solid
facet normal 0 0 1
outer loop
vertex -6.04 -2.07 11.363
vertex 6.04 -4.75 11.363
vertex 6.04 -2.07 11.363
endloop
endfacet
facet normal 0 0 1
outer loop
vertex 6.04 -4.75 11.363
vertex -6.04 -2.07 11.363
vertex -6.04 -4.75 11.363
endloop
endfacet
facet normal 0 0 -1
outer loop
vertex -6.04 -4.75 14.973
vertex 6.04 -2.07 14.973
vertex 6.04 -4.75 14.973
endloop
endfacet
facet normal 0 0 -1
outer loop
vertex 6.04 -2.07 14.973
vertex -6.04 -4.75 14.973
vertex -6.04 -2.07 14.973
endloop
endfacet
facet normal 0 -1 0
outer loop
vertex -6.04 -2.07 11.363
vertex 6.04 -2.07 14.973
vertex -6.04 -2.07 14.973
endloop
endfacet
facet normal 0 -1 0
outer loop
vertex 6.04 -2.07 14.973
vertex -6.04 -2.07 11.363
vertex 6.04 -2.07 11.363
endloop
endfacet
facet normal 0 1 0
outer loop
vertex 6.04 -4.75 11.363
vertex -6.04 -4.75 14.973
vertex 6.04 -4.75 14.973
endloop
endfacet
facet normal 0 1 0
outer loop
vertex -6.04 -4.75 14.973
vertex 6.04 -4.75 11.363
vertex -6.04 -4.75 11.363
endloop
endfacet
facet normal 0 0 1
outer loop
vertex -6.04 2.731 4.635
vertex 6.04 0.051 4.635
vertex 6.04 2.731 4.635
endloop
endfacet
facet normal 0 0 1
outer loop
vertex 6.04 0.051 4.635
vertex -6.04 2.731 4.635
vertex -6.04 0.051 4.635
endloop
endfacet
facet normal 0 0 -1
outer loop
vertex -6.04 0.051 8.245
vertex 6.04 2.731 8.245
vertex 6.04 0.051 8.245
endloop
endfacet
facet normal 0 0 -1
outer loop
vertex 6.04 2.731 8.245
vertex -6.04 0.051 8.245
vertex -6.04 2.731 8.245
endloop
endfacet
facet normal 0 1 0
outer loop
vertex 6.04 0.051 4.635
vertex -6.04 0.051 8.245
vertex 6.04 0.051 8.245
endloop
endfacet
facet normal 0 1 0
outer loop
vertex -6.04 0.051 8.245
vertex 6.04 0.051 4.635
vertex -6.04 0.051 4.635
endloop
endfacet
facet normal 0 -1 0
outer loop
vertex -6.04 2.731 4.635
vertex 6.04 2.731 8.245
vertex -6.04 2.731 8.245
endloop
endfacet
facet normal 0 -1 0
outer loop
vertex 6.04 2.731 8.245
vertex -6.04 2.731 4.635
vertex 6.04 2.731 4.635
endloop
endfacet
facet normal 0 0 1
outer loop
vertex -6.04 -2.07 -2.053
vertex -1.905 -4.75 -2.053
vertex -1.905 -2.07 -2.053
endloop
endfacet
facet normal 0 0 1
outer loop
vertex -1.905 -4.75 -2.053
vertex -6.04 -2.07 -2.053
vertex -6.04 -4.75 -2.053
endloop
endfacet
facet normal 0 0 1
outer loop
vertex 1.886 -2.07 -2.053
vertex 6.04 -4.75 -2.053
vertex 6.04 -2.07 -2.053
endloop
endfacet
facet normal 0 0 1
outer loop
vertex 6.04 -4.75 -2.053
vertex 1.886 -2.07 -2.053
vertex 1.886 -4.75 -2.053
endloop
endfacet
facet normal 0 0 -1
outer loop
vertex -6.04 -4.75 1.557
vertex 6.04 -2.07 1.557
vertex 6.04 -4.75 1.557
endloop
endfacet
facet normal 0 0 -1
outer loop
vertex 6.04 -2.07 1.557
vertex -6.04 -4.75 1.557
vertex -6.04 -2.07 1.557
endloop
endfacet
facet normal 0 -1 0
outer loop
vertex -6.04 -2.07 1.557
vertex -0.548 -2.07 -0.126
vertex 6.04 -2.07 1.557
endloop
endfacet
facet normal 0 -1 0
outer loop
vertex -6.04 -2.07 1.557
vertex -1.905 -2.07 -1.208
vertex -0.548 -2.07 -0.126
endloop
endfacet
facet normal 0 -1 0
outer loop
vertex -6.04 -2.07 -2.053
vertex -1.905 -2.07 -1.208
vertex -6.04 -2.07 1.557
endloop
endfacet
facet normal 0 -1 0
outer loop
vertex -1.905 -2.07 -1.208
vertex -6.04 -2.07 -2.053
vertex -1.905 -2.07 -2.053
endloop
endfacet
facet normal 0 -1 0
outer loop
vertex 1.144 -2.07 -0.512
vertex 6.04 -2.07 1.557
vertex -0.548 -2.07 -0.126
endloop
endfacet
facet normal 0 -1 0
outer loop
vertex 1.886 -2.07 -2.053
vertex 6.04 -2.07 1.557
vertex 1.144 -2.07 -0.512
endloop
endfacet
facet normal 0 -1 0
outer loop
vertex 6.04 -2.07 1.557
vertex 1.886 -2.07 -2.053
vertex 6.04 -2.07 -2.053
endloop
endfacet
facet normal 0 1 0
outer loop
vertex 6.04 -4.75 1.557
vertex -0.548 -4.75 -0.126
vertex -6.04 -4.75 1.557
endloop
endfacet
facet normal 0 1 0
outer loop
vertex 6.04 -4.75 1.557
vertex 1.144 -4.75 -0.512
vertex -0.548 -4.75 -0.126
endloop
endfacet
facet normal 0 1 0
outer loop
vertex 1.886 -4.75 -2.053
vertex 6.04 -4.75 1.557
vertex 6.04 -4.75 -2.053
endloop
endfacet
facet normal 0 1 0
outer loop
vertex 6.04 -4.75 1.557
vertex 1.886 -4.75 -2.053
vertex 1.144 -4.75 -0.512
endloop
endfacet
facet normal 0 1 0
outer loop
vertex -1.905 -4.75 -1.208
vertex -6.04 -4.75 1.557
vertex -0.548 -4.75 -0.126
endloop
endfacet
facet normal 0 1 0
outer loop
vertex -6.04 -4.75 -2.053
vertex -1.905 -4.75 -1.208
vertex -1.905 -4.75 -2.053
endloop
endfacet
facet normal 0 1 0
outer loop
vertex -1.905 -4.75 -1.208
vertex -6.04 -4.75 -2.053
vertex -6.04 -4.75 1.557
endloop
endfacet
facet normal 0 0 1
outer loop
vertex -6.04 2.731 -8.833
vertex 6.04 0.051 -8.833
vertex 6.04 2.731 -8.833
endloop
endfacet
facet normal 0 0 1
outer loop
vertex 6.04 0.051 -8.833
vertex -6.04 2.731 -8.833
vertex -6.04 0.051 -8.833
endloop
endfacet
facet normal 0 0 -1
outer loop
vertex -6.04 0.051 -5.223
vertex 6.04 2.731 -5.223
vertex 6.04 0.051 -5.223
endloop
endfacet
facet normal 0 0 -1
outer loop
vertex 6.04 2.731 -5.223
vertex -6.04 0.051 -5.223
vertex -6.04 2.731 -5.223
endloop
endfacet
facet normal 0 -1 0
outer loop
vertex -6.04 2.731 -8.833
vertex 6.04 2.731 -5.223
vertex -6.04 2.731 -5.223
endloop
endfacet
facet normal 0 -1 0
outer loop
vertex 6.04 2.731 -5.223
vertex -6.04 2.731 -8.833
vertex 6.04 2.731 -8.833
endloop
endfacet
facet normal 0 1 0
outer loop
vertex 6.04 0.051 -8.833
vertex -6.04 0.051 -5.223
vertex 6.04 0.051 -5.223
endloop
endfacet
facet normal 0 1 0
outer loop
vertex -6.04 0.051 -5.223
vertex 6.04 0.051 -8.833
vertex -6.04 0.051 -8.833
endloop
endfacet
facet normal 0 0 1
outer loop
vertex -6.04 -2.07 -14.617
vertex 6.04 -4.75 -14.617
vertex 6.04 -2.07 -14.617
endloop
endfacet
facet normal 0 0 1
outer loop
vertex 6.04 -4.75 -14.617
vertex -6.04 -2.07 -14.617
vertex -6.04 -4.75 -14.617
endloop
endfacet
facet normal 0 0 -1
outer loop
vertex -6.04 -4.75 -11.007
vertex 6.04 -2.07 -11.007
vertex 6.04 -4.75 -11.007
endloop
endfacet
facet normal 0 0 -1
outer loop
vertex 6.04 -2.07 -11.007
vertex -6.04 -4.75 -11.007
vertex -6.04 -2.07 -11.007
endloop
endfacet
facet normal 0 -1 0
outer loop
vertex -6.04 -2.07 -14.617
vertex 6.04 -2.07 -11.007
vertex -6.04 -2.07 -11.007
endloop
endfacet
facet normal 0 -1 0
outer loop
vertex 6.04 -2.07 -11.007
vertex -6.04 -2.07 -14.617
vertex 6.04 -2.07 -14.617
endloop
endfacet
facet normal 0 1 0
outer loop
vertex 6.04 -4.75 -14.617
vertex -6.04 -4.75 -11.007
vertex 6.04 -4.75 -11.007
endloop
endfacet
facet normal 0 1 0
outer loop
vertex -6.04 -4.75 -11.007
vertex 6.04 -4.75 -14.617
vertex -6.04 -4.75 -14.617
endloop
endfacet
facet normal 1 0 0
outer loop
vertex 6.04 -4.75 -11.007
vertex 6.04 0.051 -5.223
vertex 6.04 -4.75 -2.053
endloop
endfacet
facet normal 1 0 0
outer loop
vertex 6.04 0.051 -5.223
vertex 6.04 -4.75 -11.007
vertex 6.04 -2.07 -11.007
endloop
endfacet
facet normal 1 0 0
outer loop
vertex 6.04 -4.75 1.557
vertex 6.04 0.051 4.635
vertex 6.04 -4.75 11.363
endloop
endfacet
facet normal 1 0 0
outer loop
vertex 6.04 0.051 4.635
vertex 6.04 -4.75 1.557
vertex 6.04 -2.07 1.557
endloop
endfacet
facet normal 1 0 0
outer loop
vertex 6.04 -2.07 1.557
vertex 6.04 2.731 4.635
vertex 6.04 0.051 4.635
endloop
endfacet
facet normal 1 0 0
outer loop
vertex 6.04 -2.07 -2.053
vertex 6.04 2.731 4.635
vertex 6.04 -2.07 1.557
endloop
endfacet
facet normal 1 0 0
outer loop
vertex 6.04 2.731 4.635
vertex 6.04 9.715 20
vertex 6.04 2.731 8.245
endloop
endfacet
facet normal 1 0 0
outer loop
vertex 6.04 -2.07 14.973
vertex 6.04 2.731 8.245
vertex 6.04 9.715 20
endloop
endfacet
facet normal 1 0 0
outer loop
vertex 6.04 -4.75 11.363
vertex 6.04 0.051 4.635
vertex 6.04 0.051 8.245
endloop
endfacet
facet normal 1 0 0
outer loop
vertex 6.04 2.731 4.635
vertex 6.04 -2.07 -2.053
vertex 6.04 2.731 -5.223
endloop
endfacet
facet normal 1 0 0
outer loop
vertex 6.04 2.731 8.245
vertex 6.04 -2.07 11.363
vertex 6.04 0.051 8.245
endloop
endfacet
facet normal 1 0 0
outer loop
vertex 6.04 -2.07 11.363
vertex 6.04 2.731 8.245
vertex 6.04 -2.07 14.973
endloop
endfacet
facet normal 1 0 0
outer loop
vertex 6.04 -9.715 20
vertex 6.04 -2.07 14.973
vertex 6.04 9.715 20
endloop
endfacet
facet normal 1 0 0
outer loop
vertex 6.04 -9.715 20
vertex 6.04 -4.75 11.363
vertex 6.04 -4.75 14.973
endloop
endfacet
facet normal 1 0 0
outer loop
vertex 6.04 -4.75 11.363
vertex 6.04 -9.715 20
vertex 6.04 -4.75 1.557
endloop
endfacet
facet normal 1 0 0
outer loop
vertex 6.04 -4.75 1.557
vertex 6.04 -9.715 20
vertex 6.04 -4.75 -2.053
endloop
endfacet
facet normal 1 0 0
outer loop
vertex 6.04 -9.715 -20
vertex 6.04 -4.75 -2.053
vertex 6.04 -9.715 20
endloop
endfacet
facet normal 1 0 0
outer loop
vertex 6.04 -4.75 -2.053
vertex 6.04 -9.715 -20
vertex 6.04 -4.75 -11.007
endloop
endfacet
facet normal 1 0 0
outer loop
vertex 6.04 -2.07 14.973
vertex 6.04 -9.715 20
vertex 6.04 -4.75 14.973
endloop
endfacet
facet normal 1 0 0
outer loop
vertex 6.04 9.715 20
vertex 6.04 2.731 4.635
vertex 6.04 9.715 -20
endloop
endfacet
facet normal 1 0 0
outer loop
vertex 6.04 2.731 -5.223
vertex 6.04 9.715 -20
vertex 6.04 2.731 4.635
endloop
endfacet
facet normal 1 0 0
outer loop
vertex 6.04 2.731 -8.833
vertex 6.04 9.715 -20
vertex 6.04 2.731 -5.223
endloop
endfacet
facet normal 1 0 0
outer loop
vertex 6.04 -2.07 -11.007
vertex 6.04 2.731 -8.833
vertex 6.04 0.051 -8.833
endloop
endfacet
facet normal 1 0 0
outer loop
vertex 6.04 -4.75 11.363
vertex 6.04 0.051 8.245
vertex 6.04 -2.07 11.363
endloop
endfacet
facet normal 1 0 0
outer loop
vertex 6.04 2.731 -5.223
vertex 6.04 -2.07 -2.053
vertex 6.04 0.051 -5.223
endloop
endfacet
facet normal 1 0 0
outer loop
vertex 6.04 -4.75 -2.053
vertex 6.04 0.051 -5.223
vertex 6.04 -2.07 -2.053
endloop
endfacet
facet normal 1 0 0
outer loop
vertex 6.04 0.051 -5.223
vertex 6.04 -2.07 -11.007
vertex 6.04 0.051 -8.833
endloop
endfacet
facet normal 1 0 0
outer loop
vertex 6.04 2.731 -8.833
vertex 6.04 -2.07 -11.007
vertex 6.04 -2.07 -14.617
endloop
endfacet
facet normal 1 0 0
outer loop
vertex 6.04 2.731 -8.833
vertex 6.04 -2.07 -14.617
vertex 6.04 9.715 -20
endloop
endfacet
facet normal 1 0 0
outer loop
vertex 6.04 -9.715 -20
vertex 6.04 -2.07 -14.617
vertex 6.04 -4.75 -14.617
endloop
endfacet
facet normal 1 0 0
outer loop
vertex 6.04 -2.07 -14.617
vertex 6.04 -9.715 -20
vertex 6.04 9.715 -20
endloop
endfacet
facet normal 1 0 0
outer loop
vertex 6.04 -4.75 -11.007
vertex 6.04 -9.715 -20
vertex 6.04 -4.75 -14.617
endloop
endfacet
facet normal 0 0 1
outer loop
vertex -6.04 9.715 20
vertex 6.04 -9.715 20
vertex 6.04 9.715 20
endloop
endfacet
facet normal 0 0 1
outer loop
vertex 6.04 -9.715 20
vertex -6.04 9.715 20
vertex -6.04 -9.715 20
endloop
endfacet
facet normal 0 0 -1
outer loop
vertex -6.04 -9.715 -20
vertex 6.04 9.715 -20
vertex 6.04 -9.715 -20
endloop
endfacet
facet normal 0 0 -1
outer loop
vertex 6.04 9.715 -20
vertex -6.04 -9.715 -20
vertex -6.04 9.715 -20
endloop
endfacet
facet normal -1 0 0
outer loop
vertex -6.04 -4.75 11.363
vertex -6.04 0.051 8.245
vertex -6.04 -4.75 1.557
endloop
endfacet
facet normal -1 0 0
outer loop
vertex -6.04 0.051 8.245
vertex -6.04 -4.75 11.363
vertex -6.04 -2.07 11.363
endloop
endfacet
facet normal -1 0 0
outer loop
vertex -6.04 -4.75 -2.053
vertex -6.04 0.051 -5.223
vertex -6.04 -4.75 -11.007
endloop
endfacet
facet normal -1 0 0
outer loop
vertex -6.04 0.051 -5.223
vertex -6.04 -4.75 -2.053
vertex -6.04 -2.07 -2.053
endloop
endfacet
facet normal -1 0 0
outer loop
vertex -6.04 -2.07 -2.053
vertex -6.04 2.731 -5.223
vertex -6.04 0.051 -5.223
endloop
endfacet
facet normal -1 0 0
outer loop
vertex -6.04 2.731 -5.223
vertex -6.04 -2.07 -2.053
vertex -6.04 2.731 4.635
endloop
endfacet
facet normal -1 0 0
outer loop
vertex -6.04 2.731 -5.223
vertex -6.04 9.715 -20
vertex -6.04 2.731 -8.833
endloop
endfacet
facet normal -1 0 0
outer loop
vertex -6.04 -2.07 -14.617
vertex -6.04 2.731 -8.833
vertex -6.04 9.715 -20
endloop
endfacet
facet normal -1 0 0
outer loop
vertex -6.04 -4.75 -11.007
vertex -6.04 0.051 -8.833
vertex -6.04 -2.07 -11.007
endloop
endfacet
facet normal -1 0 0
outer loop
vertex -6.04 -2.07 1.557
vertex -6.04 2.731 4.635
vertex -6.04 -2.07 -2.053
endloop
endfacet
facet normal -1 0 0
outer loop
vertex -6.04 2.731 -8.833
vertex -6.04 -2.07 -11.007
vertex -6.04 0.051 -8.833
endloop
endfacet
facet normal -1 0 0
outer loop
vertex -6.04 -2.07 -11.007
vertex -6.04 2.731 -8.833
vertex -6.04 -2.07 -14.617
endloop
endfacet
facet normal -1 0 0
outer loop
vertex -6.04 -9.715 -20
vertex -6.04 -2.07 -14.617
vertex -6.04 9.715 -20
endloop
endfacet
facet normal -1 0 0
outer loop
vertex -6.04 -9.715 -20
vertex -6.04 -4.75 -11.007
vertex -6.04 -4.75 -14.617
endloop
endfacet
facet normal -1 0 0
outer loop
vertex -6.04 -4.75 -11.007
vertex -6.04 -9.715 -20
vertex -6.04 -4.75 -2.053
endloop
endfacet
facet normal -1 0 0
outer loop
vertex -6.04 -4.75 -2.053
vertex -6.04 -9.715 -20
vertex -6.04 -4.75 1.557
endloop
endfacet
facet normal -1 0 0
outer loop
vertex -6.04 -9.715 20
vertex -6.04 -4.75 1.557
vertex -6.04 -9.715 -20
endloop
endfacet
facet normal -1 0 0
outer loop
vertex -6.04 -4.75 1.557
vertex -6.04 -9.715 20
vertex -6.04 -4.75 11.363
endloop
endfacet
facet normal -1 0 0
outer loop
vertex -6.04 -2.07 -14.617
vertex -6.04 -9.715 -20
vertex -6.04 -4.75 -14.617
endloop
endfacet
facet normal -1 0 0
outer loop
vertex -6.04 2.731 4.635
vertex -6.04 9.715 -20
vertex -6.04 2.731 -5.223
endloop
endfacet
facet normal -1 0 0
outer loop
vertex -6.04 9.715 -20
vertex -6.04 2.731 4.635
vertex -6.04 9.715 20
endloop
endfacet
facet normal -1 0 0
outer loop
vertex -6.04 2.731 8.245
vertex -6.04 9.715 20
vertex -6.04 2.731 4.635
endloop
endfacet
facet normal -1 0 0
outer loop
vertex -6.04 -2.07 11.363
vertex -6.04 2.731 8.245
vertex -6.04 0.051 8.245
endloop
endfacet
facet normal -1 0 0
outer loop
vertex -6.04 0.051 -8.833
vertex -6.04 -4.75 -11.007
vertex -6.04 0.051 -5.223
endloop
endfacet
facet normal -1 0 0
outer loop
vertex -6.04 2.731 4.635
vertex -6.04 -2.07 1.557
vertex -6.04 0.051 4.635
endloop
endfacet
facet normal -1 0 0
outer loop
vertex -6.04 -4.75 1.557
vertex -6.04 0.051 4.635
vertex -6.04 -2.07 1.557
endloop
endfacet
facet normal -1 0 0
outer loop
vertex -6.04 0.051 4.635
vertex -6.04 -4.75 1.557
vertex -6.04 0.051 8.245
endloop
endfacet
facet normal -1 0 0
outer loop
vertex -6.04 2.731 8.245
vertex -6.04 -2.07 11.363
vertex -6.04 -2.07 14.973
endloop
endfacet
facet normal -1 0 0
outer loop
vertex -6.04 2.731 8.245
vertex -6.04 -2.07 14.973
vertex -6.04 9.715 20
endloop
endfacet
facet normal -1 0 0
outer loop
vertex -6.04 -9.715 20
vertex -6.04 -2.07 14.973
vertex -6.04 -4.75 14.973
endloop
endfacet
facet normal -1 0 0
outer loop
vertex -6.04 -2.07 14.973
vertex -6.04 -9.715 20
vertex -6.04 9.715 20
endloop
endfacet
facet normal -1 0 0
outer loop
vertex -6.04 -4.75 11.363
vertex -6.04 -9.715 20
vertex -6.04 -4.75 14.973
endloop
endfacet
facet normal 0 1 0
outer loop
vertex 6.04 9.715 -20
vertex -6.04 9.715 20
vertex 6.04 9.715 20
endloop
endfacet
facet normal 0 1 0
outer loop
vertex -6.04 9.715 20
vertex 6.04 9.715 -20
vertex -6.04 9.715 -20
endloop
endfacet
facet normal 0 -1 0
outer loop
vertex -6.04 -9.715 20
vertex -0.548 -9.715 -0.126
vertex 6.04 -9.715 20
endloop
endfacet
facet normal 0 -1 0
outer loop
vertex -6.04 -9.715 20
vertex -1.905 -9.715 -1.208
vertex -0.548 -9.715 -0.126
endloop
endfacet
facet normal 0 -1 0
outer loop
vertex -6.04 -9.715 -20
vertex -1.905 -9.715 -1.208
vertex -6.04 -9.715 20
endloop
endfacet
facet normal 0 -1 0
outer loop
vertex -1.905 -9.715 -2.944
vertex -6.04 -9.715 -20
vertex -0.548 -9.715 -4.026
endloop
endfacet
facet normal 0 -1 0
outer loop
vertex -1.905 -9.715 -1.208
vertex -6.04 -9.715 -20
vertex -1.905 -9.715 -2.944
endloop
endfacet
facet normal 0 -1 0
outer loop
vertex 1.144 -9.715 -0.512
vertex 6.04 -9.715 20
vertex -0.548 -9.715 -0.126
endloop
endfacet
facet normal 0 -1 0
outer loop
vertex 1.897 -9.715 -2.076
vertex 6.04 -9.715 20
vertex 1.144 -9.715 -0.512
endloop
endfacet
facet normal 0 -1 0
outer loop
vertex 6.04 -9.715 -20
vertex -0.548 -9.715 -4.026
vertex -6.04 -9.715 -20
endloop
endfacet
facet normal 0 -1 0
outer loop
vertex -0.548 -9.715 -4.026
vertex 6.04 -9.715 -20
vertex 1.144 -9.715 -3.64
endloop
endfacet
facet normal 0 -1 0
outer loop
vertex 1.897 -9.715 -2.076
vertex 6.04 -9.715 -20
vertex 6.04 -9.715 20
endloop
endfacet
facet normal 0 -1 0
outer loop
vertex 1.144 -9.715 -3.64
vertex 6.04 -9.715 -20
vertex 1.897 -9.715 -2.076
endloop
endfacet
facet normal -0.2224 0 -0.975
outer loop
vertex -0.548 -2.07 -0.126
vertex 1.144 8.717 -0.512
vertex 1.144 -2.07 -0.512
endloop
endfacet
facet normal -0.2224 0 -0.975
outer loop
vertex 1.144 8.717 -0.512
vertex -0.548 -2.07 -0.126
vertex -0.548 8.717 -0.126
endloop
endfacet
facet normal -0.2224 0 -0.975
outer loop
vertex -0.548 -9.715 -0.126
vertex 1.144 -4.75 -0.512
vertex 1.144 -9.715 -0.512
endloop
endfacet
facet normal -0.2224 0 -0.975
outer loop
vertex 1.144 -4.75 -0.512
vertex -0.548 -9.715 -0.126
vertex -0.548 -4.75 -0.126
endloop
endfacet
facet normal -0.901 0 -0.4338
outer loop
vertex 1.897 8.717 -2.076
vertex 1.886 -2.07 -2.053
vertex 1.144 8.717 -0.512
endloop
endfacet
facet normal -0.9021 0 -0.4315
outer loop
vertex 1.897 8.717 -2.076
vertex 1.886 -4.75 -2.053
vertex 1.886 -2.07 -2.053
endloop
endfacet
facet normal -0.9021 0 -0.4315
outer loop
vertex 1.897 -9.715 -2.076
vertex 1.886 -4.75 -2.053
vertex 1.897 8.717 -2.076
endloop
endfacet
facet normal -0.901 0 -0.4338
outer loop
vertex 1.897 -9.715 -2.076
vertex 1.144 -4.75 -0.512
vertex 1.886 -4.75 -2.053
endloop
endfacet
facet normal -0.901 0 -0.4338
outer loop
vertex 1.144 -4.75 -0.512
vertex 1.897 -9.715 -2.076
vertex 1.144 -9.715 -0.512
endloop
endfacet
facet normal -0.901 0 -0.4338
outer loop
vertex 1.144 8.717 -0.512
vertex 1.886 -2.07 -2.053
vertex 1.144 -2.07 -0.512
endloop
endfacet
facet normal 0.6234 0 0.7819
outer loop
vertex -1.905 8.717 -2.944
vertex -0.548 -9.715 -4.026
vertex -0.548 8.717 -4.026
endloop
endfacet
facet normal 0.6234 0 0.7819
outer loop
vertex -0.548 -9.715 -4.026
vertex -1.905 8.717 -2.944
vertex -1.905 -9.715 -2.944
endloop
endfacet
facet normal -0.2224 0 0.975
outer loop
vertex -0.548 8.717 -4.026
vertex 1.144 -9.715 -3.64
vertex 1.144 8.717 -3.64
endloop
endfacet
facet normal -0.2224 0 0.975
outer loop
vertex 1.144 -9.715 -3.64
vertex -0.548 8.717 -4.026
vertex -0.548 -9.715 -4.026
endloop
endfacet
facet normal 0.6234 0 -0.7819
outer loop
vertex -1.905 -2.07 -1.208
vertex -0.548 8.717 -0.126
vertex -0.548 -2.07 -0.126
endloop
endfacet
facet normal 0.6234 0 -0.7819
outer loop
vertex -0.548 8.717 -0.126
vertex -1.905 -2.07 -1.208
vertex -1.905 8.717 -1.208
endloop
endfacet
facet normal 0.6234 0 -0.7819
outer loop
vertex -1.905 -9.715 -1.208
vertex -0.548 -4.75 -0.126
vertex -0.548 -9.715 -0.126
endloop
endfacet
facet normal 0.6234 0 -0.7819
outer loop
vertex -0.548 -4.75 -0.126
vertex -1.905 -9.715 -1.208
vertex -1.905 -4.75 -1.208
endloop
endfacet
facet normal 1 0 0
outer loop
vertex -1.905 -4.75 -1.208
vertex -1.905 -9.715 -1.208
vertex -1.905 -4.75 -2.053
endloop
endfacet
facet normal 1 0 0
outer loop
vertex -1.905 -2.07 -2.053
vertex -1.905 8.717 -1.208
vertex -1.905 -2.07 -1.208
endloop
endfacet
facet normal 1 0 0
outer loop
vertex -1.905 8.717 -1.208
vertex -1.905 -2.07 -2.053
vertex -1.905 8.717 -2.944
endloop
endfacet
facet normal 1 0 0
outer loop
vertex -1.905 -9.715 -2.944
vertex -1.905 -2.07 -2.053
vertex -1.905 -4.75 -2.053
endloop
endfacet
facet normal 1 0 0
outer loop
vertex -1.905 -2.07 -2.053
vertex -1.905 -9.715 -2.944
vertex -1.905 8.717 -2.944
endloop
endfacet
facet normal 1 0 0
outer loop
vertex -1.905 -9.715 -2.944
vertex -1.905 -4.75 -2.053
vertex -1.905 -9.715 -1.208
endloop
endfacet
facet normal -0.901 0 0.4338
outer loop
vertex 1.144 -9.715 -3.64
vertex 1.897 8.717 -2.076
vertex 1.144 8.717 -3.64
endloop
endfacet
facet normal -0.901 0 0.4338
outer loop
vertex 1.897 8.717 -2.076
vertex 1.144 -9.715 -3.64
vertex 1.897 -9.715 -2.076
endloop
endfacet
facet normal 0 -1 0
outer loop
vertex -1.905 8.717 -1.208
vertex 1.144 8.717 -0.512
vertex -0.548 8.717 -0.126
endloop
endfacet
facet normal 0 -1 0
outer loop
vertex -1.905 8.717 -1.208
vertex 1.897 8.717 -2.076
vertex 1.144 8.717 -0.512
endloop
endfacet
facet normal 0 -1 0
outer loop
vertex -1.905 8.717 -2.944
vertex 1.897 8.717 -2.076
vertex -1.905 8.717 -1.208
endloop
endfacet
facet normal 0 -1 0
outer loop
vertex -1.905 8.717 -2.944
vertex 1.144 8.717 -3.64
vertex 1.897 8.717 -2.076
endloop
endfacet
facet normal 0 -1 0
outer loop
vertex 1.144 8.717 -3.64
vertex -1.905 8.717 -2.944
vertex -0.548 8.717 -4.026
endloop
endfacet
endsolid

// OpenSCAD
/* doodle-meta {"version":1,"parameters":{"width":{"label":"Overall width","description":"Changes the body width","unit":"mm","feature":"body_width"},"depth":{"label":"Overall depth","description":"Changes the body depth","unit":"mm","feature":"body_depth"},"height":{"label":"Overall height","description":"Changes the body height","unit":"mm","feature":"body_height"},"hole_diameter":{"label":"Mounting hole diameter","description":"Diameter of the central mounting hole","unit":"mm","feature":"mounting_hole"},"slot_width":{"label":"Slot width","description":"Width of each cable retention slot","unit":"mm","feature":"cable_slots"},"slot_height":{"label":"Slot height","description":"Height of each cable retention slot","unit":"mm","feature":"cable_slots"},"slot_count":{"label":"Slot count","description":"Number of cable retention slots","unit":"count","feature":"cable_slots"}},"features":{"body_width":{"kind":"dimension","axis":"x","label":"Overall width"},"body_depth":{"kind":"dimension","axis":"y","label":"Overall depth"},"body_height":{"kind":"dimension","axis":"z","label":"Overall height"},"mounting_hole":{"kind":"region","label":"Mounting hole","min":[{"parameter":"width","scale":0.5,"offset":0},{"parameter":"depth","scale":0.5,"offset":0},{"parameter":"height","scale":0.4481,"offset":0}],"max":[{"parameter":"width","scale":0.5,"offset":0},{"parameter":"depth","scale":0.5,"offset":0},{"parameter":"height","scale":0.6606,"offset":0}]},"cable_slots":{"kind":"region","label":"Cable slots","min":[{"parameter":"width","scale":0.5,"offset":0},{"parameter":"depth","scale":0.1708,"offset":0},{"parameter":"height","scale":0.8292,"offset":0}],"max":[{"parameter":"width","scale":0.5,"offset":0},{"parameter":"depth","scale":0.8203,"offset":0},{"parameter":"height","scale":0.1797,"offset":0}]}}} */

width = 12.08;
depth = 19.43;
height = 40.0;
hole_diameter = 4.0;
slot_width = 2.68;
slot_height = 3.59;
slot_count = 5;

eps = 0.01;

module body() {
    cube([width, depth, height], center=true);
}

module mounting_hole() {
    // Hole center in view_1 (top): u=0.4915, v=0.5519
    // X = (0.4915 - 0.5) * width = -0.0102 * width
    // Y = (0.5 - 0.5519) * depth = -0.0519 * depth
    // Z = (0.5 - 0.5519) * height = -0.0519 * height
    translate([
        (0.4915 - 0.5) * width,
        (0.5 - 0.5519) * depth,
        (0.5 - 0.5519) * height
    ])
    rotate([90, 0, 0])
    cylinder(d=hole_diameter, h=depth + 2*eps, center=true);
}

module cable_slots() {
    // Slots in view_2 (right): u maps to +Y, v maps to -Z
    // Centers (u, v):
    // 1: (0.3245, 0.1708) -> Y = (0.3245-0.5)*depth, Z = (0.5-0.1708)*height
    // 2: (0.5716, 0.3390) -> Y = (0.5716-0.5)*depth, Z = (0.5-0.3390)*height
    // 3: (0.3245, 0.5062) -> Y = (0.3245-0.5)*depth, Z = (0.5-0.5062)*height
    // 4: (0.5716, 0.6757) -> Y = (0.5716-0.5)*depth, Z = (0.5-0.6757)*height
    // 5: (0.3245, 0.8203) -> Y = (0.3245-0.5)*depth, Z = (0.5-0.8203)*height
    
    slot_y_positions = [
        (0.3245 - 0.5) * depth,
        (0.5716 - 0.5) * depth,
        (0.3245 - 0.5) * depth,
        (0.5716 - 0.5) * depth,
        (0.3245 - 0.5) * depth
    ];
    
    slot_z_positions = [
        (0.5 - 0.1708) * height,
        (0.5 - 0.3390) * height,
        (0.5 - 0.5062) * height,
        (0.5 - 0.6757) * height,
        (0.5 - 0.8203) * height
    ];
    
    for (i = [0 : slot_count - 1]) {
        translate([0, slot_y_positions[i], slot_z_positions[i]])
        rotate([0, 90, 0])
        cube([slot_height + 2*eps, slot_width, width + 2*eps], center=true);
    }
}

difference() {
    body();
    mounting_hole();
    cable_slots();
}
